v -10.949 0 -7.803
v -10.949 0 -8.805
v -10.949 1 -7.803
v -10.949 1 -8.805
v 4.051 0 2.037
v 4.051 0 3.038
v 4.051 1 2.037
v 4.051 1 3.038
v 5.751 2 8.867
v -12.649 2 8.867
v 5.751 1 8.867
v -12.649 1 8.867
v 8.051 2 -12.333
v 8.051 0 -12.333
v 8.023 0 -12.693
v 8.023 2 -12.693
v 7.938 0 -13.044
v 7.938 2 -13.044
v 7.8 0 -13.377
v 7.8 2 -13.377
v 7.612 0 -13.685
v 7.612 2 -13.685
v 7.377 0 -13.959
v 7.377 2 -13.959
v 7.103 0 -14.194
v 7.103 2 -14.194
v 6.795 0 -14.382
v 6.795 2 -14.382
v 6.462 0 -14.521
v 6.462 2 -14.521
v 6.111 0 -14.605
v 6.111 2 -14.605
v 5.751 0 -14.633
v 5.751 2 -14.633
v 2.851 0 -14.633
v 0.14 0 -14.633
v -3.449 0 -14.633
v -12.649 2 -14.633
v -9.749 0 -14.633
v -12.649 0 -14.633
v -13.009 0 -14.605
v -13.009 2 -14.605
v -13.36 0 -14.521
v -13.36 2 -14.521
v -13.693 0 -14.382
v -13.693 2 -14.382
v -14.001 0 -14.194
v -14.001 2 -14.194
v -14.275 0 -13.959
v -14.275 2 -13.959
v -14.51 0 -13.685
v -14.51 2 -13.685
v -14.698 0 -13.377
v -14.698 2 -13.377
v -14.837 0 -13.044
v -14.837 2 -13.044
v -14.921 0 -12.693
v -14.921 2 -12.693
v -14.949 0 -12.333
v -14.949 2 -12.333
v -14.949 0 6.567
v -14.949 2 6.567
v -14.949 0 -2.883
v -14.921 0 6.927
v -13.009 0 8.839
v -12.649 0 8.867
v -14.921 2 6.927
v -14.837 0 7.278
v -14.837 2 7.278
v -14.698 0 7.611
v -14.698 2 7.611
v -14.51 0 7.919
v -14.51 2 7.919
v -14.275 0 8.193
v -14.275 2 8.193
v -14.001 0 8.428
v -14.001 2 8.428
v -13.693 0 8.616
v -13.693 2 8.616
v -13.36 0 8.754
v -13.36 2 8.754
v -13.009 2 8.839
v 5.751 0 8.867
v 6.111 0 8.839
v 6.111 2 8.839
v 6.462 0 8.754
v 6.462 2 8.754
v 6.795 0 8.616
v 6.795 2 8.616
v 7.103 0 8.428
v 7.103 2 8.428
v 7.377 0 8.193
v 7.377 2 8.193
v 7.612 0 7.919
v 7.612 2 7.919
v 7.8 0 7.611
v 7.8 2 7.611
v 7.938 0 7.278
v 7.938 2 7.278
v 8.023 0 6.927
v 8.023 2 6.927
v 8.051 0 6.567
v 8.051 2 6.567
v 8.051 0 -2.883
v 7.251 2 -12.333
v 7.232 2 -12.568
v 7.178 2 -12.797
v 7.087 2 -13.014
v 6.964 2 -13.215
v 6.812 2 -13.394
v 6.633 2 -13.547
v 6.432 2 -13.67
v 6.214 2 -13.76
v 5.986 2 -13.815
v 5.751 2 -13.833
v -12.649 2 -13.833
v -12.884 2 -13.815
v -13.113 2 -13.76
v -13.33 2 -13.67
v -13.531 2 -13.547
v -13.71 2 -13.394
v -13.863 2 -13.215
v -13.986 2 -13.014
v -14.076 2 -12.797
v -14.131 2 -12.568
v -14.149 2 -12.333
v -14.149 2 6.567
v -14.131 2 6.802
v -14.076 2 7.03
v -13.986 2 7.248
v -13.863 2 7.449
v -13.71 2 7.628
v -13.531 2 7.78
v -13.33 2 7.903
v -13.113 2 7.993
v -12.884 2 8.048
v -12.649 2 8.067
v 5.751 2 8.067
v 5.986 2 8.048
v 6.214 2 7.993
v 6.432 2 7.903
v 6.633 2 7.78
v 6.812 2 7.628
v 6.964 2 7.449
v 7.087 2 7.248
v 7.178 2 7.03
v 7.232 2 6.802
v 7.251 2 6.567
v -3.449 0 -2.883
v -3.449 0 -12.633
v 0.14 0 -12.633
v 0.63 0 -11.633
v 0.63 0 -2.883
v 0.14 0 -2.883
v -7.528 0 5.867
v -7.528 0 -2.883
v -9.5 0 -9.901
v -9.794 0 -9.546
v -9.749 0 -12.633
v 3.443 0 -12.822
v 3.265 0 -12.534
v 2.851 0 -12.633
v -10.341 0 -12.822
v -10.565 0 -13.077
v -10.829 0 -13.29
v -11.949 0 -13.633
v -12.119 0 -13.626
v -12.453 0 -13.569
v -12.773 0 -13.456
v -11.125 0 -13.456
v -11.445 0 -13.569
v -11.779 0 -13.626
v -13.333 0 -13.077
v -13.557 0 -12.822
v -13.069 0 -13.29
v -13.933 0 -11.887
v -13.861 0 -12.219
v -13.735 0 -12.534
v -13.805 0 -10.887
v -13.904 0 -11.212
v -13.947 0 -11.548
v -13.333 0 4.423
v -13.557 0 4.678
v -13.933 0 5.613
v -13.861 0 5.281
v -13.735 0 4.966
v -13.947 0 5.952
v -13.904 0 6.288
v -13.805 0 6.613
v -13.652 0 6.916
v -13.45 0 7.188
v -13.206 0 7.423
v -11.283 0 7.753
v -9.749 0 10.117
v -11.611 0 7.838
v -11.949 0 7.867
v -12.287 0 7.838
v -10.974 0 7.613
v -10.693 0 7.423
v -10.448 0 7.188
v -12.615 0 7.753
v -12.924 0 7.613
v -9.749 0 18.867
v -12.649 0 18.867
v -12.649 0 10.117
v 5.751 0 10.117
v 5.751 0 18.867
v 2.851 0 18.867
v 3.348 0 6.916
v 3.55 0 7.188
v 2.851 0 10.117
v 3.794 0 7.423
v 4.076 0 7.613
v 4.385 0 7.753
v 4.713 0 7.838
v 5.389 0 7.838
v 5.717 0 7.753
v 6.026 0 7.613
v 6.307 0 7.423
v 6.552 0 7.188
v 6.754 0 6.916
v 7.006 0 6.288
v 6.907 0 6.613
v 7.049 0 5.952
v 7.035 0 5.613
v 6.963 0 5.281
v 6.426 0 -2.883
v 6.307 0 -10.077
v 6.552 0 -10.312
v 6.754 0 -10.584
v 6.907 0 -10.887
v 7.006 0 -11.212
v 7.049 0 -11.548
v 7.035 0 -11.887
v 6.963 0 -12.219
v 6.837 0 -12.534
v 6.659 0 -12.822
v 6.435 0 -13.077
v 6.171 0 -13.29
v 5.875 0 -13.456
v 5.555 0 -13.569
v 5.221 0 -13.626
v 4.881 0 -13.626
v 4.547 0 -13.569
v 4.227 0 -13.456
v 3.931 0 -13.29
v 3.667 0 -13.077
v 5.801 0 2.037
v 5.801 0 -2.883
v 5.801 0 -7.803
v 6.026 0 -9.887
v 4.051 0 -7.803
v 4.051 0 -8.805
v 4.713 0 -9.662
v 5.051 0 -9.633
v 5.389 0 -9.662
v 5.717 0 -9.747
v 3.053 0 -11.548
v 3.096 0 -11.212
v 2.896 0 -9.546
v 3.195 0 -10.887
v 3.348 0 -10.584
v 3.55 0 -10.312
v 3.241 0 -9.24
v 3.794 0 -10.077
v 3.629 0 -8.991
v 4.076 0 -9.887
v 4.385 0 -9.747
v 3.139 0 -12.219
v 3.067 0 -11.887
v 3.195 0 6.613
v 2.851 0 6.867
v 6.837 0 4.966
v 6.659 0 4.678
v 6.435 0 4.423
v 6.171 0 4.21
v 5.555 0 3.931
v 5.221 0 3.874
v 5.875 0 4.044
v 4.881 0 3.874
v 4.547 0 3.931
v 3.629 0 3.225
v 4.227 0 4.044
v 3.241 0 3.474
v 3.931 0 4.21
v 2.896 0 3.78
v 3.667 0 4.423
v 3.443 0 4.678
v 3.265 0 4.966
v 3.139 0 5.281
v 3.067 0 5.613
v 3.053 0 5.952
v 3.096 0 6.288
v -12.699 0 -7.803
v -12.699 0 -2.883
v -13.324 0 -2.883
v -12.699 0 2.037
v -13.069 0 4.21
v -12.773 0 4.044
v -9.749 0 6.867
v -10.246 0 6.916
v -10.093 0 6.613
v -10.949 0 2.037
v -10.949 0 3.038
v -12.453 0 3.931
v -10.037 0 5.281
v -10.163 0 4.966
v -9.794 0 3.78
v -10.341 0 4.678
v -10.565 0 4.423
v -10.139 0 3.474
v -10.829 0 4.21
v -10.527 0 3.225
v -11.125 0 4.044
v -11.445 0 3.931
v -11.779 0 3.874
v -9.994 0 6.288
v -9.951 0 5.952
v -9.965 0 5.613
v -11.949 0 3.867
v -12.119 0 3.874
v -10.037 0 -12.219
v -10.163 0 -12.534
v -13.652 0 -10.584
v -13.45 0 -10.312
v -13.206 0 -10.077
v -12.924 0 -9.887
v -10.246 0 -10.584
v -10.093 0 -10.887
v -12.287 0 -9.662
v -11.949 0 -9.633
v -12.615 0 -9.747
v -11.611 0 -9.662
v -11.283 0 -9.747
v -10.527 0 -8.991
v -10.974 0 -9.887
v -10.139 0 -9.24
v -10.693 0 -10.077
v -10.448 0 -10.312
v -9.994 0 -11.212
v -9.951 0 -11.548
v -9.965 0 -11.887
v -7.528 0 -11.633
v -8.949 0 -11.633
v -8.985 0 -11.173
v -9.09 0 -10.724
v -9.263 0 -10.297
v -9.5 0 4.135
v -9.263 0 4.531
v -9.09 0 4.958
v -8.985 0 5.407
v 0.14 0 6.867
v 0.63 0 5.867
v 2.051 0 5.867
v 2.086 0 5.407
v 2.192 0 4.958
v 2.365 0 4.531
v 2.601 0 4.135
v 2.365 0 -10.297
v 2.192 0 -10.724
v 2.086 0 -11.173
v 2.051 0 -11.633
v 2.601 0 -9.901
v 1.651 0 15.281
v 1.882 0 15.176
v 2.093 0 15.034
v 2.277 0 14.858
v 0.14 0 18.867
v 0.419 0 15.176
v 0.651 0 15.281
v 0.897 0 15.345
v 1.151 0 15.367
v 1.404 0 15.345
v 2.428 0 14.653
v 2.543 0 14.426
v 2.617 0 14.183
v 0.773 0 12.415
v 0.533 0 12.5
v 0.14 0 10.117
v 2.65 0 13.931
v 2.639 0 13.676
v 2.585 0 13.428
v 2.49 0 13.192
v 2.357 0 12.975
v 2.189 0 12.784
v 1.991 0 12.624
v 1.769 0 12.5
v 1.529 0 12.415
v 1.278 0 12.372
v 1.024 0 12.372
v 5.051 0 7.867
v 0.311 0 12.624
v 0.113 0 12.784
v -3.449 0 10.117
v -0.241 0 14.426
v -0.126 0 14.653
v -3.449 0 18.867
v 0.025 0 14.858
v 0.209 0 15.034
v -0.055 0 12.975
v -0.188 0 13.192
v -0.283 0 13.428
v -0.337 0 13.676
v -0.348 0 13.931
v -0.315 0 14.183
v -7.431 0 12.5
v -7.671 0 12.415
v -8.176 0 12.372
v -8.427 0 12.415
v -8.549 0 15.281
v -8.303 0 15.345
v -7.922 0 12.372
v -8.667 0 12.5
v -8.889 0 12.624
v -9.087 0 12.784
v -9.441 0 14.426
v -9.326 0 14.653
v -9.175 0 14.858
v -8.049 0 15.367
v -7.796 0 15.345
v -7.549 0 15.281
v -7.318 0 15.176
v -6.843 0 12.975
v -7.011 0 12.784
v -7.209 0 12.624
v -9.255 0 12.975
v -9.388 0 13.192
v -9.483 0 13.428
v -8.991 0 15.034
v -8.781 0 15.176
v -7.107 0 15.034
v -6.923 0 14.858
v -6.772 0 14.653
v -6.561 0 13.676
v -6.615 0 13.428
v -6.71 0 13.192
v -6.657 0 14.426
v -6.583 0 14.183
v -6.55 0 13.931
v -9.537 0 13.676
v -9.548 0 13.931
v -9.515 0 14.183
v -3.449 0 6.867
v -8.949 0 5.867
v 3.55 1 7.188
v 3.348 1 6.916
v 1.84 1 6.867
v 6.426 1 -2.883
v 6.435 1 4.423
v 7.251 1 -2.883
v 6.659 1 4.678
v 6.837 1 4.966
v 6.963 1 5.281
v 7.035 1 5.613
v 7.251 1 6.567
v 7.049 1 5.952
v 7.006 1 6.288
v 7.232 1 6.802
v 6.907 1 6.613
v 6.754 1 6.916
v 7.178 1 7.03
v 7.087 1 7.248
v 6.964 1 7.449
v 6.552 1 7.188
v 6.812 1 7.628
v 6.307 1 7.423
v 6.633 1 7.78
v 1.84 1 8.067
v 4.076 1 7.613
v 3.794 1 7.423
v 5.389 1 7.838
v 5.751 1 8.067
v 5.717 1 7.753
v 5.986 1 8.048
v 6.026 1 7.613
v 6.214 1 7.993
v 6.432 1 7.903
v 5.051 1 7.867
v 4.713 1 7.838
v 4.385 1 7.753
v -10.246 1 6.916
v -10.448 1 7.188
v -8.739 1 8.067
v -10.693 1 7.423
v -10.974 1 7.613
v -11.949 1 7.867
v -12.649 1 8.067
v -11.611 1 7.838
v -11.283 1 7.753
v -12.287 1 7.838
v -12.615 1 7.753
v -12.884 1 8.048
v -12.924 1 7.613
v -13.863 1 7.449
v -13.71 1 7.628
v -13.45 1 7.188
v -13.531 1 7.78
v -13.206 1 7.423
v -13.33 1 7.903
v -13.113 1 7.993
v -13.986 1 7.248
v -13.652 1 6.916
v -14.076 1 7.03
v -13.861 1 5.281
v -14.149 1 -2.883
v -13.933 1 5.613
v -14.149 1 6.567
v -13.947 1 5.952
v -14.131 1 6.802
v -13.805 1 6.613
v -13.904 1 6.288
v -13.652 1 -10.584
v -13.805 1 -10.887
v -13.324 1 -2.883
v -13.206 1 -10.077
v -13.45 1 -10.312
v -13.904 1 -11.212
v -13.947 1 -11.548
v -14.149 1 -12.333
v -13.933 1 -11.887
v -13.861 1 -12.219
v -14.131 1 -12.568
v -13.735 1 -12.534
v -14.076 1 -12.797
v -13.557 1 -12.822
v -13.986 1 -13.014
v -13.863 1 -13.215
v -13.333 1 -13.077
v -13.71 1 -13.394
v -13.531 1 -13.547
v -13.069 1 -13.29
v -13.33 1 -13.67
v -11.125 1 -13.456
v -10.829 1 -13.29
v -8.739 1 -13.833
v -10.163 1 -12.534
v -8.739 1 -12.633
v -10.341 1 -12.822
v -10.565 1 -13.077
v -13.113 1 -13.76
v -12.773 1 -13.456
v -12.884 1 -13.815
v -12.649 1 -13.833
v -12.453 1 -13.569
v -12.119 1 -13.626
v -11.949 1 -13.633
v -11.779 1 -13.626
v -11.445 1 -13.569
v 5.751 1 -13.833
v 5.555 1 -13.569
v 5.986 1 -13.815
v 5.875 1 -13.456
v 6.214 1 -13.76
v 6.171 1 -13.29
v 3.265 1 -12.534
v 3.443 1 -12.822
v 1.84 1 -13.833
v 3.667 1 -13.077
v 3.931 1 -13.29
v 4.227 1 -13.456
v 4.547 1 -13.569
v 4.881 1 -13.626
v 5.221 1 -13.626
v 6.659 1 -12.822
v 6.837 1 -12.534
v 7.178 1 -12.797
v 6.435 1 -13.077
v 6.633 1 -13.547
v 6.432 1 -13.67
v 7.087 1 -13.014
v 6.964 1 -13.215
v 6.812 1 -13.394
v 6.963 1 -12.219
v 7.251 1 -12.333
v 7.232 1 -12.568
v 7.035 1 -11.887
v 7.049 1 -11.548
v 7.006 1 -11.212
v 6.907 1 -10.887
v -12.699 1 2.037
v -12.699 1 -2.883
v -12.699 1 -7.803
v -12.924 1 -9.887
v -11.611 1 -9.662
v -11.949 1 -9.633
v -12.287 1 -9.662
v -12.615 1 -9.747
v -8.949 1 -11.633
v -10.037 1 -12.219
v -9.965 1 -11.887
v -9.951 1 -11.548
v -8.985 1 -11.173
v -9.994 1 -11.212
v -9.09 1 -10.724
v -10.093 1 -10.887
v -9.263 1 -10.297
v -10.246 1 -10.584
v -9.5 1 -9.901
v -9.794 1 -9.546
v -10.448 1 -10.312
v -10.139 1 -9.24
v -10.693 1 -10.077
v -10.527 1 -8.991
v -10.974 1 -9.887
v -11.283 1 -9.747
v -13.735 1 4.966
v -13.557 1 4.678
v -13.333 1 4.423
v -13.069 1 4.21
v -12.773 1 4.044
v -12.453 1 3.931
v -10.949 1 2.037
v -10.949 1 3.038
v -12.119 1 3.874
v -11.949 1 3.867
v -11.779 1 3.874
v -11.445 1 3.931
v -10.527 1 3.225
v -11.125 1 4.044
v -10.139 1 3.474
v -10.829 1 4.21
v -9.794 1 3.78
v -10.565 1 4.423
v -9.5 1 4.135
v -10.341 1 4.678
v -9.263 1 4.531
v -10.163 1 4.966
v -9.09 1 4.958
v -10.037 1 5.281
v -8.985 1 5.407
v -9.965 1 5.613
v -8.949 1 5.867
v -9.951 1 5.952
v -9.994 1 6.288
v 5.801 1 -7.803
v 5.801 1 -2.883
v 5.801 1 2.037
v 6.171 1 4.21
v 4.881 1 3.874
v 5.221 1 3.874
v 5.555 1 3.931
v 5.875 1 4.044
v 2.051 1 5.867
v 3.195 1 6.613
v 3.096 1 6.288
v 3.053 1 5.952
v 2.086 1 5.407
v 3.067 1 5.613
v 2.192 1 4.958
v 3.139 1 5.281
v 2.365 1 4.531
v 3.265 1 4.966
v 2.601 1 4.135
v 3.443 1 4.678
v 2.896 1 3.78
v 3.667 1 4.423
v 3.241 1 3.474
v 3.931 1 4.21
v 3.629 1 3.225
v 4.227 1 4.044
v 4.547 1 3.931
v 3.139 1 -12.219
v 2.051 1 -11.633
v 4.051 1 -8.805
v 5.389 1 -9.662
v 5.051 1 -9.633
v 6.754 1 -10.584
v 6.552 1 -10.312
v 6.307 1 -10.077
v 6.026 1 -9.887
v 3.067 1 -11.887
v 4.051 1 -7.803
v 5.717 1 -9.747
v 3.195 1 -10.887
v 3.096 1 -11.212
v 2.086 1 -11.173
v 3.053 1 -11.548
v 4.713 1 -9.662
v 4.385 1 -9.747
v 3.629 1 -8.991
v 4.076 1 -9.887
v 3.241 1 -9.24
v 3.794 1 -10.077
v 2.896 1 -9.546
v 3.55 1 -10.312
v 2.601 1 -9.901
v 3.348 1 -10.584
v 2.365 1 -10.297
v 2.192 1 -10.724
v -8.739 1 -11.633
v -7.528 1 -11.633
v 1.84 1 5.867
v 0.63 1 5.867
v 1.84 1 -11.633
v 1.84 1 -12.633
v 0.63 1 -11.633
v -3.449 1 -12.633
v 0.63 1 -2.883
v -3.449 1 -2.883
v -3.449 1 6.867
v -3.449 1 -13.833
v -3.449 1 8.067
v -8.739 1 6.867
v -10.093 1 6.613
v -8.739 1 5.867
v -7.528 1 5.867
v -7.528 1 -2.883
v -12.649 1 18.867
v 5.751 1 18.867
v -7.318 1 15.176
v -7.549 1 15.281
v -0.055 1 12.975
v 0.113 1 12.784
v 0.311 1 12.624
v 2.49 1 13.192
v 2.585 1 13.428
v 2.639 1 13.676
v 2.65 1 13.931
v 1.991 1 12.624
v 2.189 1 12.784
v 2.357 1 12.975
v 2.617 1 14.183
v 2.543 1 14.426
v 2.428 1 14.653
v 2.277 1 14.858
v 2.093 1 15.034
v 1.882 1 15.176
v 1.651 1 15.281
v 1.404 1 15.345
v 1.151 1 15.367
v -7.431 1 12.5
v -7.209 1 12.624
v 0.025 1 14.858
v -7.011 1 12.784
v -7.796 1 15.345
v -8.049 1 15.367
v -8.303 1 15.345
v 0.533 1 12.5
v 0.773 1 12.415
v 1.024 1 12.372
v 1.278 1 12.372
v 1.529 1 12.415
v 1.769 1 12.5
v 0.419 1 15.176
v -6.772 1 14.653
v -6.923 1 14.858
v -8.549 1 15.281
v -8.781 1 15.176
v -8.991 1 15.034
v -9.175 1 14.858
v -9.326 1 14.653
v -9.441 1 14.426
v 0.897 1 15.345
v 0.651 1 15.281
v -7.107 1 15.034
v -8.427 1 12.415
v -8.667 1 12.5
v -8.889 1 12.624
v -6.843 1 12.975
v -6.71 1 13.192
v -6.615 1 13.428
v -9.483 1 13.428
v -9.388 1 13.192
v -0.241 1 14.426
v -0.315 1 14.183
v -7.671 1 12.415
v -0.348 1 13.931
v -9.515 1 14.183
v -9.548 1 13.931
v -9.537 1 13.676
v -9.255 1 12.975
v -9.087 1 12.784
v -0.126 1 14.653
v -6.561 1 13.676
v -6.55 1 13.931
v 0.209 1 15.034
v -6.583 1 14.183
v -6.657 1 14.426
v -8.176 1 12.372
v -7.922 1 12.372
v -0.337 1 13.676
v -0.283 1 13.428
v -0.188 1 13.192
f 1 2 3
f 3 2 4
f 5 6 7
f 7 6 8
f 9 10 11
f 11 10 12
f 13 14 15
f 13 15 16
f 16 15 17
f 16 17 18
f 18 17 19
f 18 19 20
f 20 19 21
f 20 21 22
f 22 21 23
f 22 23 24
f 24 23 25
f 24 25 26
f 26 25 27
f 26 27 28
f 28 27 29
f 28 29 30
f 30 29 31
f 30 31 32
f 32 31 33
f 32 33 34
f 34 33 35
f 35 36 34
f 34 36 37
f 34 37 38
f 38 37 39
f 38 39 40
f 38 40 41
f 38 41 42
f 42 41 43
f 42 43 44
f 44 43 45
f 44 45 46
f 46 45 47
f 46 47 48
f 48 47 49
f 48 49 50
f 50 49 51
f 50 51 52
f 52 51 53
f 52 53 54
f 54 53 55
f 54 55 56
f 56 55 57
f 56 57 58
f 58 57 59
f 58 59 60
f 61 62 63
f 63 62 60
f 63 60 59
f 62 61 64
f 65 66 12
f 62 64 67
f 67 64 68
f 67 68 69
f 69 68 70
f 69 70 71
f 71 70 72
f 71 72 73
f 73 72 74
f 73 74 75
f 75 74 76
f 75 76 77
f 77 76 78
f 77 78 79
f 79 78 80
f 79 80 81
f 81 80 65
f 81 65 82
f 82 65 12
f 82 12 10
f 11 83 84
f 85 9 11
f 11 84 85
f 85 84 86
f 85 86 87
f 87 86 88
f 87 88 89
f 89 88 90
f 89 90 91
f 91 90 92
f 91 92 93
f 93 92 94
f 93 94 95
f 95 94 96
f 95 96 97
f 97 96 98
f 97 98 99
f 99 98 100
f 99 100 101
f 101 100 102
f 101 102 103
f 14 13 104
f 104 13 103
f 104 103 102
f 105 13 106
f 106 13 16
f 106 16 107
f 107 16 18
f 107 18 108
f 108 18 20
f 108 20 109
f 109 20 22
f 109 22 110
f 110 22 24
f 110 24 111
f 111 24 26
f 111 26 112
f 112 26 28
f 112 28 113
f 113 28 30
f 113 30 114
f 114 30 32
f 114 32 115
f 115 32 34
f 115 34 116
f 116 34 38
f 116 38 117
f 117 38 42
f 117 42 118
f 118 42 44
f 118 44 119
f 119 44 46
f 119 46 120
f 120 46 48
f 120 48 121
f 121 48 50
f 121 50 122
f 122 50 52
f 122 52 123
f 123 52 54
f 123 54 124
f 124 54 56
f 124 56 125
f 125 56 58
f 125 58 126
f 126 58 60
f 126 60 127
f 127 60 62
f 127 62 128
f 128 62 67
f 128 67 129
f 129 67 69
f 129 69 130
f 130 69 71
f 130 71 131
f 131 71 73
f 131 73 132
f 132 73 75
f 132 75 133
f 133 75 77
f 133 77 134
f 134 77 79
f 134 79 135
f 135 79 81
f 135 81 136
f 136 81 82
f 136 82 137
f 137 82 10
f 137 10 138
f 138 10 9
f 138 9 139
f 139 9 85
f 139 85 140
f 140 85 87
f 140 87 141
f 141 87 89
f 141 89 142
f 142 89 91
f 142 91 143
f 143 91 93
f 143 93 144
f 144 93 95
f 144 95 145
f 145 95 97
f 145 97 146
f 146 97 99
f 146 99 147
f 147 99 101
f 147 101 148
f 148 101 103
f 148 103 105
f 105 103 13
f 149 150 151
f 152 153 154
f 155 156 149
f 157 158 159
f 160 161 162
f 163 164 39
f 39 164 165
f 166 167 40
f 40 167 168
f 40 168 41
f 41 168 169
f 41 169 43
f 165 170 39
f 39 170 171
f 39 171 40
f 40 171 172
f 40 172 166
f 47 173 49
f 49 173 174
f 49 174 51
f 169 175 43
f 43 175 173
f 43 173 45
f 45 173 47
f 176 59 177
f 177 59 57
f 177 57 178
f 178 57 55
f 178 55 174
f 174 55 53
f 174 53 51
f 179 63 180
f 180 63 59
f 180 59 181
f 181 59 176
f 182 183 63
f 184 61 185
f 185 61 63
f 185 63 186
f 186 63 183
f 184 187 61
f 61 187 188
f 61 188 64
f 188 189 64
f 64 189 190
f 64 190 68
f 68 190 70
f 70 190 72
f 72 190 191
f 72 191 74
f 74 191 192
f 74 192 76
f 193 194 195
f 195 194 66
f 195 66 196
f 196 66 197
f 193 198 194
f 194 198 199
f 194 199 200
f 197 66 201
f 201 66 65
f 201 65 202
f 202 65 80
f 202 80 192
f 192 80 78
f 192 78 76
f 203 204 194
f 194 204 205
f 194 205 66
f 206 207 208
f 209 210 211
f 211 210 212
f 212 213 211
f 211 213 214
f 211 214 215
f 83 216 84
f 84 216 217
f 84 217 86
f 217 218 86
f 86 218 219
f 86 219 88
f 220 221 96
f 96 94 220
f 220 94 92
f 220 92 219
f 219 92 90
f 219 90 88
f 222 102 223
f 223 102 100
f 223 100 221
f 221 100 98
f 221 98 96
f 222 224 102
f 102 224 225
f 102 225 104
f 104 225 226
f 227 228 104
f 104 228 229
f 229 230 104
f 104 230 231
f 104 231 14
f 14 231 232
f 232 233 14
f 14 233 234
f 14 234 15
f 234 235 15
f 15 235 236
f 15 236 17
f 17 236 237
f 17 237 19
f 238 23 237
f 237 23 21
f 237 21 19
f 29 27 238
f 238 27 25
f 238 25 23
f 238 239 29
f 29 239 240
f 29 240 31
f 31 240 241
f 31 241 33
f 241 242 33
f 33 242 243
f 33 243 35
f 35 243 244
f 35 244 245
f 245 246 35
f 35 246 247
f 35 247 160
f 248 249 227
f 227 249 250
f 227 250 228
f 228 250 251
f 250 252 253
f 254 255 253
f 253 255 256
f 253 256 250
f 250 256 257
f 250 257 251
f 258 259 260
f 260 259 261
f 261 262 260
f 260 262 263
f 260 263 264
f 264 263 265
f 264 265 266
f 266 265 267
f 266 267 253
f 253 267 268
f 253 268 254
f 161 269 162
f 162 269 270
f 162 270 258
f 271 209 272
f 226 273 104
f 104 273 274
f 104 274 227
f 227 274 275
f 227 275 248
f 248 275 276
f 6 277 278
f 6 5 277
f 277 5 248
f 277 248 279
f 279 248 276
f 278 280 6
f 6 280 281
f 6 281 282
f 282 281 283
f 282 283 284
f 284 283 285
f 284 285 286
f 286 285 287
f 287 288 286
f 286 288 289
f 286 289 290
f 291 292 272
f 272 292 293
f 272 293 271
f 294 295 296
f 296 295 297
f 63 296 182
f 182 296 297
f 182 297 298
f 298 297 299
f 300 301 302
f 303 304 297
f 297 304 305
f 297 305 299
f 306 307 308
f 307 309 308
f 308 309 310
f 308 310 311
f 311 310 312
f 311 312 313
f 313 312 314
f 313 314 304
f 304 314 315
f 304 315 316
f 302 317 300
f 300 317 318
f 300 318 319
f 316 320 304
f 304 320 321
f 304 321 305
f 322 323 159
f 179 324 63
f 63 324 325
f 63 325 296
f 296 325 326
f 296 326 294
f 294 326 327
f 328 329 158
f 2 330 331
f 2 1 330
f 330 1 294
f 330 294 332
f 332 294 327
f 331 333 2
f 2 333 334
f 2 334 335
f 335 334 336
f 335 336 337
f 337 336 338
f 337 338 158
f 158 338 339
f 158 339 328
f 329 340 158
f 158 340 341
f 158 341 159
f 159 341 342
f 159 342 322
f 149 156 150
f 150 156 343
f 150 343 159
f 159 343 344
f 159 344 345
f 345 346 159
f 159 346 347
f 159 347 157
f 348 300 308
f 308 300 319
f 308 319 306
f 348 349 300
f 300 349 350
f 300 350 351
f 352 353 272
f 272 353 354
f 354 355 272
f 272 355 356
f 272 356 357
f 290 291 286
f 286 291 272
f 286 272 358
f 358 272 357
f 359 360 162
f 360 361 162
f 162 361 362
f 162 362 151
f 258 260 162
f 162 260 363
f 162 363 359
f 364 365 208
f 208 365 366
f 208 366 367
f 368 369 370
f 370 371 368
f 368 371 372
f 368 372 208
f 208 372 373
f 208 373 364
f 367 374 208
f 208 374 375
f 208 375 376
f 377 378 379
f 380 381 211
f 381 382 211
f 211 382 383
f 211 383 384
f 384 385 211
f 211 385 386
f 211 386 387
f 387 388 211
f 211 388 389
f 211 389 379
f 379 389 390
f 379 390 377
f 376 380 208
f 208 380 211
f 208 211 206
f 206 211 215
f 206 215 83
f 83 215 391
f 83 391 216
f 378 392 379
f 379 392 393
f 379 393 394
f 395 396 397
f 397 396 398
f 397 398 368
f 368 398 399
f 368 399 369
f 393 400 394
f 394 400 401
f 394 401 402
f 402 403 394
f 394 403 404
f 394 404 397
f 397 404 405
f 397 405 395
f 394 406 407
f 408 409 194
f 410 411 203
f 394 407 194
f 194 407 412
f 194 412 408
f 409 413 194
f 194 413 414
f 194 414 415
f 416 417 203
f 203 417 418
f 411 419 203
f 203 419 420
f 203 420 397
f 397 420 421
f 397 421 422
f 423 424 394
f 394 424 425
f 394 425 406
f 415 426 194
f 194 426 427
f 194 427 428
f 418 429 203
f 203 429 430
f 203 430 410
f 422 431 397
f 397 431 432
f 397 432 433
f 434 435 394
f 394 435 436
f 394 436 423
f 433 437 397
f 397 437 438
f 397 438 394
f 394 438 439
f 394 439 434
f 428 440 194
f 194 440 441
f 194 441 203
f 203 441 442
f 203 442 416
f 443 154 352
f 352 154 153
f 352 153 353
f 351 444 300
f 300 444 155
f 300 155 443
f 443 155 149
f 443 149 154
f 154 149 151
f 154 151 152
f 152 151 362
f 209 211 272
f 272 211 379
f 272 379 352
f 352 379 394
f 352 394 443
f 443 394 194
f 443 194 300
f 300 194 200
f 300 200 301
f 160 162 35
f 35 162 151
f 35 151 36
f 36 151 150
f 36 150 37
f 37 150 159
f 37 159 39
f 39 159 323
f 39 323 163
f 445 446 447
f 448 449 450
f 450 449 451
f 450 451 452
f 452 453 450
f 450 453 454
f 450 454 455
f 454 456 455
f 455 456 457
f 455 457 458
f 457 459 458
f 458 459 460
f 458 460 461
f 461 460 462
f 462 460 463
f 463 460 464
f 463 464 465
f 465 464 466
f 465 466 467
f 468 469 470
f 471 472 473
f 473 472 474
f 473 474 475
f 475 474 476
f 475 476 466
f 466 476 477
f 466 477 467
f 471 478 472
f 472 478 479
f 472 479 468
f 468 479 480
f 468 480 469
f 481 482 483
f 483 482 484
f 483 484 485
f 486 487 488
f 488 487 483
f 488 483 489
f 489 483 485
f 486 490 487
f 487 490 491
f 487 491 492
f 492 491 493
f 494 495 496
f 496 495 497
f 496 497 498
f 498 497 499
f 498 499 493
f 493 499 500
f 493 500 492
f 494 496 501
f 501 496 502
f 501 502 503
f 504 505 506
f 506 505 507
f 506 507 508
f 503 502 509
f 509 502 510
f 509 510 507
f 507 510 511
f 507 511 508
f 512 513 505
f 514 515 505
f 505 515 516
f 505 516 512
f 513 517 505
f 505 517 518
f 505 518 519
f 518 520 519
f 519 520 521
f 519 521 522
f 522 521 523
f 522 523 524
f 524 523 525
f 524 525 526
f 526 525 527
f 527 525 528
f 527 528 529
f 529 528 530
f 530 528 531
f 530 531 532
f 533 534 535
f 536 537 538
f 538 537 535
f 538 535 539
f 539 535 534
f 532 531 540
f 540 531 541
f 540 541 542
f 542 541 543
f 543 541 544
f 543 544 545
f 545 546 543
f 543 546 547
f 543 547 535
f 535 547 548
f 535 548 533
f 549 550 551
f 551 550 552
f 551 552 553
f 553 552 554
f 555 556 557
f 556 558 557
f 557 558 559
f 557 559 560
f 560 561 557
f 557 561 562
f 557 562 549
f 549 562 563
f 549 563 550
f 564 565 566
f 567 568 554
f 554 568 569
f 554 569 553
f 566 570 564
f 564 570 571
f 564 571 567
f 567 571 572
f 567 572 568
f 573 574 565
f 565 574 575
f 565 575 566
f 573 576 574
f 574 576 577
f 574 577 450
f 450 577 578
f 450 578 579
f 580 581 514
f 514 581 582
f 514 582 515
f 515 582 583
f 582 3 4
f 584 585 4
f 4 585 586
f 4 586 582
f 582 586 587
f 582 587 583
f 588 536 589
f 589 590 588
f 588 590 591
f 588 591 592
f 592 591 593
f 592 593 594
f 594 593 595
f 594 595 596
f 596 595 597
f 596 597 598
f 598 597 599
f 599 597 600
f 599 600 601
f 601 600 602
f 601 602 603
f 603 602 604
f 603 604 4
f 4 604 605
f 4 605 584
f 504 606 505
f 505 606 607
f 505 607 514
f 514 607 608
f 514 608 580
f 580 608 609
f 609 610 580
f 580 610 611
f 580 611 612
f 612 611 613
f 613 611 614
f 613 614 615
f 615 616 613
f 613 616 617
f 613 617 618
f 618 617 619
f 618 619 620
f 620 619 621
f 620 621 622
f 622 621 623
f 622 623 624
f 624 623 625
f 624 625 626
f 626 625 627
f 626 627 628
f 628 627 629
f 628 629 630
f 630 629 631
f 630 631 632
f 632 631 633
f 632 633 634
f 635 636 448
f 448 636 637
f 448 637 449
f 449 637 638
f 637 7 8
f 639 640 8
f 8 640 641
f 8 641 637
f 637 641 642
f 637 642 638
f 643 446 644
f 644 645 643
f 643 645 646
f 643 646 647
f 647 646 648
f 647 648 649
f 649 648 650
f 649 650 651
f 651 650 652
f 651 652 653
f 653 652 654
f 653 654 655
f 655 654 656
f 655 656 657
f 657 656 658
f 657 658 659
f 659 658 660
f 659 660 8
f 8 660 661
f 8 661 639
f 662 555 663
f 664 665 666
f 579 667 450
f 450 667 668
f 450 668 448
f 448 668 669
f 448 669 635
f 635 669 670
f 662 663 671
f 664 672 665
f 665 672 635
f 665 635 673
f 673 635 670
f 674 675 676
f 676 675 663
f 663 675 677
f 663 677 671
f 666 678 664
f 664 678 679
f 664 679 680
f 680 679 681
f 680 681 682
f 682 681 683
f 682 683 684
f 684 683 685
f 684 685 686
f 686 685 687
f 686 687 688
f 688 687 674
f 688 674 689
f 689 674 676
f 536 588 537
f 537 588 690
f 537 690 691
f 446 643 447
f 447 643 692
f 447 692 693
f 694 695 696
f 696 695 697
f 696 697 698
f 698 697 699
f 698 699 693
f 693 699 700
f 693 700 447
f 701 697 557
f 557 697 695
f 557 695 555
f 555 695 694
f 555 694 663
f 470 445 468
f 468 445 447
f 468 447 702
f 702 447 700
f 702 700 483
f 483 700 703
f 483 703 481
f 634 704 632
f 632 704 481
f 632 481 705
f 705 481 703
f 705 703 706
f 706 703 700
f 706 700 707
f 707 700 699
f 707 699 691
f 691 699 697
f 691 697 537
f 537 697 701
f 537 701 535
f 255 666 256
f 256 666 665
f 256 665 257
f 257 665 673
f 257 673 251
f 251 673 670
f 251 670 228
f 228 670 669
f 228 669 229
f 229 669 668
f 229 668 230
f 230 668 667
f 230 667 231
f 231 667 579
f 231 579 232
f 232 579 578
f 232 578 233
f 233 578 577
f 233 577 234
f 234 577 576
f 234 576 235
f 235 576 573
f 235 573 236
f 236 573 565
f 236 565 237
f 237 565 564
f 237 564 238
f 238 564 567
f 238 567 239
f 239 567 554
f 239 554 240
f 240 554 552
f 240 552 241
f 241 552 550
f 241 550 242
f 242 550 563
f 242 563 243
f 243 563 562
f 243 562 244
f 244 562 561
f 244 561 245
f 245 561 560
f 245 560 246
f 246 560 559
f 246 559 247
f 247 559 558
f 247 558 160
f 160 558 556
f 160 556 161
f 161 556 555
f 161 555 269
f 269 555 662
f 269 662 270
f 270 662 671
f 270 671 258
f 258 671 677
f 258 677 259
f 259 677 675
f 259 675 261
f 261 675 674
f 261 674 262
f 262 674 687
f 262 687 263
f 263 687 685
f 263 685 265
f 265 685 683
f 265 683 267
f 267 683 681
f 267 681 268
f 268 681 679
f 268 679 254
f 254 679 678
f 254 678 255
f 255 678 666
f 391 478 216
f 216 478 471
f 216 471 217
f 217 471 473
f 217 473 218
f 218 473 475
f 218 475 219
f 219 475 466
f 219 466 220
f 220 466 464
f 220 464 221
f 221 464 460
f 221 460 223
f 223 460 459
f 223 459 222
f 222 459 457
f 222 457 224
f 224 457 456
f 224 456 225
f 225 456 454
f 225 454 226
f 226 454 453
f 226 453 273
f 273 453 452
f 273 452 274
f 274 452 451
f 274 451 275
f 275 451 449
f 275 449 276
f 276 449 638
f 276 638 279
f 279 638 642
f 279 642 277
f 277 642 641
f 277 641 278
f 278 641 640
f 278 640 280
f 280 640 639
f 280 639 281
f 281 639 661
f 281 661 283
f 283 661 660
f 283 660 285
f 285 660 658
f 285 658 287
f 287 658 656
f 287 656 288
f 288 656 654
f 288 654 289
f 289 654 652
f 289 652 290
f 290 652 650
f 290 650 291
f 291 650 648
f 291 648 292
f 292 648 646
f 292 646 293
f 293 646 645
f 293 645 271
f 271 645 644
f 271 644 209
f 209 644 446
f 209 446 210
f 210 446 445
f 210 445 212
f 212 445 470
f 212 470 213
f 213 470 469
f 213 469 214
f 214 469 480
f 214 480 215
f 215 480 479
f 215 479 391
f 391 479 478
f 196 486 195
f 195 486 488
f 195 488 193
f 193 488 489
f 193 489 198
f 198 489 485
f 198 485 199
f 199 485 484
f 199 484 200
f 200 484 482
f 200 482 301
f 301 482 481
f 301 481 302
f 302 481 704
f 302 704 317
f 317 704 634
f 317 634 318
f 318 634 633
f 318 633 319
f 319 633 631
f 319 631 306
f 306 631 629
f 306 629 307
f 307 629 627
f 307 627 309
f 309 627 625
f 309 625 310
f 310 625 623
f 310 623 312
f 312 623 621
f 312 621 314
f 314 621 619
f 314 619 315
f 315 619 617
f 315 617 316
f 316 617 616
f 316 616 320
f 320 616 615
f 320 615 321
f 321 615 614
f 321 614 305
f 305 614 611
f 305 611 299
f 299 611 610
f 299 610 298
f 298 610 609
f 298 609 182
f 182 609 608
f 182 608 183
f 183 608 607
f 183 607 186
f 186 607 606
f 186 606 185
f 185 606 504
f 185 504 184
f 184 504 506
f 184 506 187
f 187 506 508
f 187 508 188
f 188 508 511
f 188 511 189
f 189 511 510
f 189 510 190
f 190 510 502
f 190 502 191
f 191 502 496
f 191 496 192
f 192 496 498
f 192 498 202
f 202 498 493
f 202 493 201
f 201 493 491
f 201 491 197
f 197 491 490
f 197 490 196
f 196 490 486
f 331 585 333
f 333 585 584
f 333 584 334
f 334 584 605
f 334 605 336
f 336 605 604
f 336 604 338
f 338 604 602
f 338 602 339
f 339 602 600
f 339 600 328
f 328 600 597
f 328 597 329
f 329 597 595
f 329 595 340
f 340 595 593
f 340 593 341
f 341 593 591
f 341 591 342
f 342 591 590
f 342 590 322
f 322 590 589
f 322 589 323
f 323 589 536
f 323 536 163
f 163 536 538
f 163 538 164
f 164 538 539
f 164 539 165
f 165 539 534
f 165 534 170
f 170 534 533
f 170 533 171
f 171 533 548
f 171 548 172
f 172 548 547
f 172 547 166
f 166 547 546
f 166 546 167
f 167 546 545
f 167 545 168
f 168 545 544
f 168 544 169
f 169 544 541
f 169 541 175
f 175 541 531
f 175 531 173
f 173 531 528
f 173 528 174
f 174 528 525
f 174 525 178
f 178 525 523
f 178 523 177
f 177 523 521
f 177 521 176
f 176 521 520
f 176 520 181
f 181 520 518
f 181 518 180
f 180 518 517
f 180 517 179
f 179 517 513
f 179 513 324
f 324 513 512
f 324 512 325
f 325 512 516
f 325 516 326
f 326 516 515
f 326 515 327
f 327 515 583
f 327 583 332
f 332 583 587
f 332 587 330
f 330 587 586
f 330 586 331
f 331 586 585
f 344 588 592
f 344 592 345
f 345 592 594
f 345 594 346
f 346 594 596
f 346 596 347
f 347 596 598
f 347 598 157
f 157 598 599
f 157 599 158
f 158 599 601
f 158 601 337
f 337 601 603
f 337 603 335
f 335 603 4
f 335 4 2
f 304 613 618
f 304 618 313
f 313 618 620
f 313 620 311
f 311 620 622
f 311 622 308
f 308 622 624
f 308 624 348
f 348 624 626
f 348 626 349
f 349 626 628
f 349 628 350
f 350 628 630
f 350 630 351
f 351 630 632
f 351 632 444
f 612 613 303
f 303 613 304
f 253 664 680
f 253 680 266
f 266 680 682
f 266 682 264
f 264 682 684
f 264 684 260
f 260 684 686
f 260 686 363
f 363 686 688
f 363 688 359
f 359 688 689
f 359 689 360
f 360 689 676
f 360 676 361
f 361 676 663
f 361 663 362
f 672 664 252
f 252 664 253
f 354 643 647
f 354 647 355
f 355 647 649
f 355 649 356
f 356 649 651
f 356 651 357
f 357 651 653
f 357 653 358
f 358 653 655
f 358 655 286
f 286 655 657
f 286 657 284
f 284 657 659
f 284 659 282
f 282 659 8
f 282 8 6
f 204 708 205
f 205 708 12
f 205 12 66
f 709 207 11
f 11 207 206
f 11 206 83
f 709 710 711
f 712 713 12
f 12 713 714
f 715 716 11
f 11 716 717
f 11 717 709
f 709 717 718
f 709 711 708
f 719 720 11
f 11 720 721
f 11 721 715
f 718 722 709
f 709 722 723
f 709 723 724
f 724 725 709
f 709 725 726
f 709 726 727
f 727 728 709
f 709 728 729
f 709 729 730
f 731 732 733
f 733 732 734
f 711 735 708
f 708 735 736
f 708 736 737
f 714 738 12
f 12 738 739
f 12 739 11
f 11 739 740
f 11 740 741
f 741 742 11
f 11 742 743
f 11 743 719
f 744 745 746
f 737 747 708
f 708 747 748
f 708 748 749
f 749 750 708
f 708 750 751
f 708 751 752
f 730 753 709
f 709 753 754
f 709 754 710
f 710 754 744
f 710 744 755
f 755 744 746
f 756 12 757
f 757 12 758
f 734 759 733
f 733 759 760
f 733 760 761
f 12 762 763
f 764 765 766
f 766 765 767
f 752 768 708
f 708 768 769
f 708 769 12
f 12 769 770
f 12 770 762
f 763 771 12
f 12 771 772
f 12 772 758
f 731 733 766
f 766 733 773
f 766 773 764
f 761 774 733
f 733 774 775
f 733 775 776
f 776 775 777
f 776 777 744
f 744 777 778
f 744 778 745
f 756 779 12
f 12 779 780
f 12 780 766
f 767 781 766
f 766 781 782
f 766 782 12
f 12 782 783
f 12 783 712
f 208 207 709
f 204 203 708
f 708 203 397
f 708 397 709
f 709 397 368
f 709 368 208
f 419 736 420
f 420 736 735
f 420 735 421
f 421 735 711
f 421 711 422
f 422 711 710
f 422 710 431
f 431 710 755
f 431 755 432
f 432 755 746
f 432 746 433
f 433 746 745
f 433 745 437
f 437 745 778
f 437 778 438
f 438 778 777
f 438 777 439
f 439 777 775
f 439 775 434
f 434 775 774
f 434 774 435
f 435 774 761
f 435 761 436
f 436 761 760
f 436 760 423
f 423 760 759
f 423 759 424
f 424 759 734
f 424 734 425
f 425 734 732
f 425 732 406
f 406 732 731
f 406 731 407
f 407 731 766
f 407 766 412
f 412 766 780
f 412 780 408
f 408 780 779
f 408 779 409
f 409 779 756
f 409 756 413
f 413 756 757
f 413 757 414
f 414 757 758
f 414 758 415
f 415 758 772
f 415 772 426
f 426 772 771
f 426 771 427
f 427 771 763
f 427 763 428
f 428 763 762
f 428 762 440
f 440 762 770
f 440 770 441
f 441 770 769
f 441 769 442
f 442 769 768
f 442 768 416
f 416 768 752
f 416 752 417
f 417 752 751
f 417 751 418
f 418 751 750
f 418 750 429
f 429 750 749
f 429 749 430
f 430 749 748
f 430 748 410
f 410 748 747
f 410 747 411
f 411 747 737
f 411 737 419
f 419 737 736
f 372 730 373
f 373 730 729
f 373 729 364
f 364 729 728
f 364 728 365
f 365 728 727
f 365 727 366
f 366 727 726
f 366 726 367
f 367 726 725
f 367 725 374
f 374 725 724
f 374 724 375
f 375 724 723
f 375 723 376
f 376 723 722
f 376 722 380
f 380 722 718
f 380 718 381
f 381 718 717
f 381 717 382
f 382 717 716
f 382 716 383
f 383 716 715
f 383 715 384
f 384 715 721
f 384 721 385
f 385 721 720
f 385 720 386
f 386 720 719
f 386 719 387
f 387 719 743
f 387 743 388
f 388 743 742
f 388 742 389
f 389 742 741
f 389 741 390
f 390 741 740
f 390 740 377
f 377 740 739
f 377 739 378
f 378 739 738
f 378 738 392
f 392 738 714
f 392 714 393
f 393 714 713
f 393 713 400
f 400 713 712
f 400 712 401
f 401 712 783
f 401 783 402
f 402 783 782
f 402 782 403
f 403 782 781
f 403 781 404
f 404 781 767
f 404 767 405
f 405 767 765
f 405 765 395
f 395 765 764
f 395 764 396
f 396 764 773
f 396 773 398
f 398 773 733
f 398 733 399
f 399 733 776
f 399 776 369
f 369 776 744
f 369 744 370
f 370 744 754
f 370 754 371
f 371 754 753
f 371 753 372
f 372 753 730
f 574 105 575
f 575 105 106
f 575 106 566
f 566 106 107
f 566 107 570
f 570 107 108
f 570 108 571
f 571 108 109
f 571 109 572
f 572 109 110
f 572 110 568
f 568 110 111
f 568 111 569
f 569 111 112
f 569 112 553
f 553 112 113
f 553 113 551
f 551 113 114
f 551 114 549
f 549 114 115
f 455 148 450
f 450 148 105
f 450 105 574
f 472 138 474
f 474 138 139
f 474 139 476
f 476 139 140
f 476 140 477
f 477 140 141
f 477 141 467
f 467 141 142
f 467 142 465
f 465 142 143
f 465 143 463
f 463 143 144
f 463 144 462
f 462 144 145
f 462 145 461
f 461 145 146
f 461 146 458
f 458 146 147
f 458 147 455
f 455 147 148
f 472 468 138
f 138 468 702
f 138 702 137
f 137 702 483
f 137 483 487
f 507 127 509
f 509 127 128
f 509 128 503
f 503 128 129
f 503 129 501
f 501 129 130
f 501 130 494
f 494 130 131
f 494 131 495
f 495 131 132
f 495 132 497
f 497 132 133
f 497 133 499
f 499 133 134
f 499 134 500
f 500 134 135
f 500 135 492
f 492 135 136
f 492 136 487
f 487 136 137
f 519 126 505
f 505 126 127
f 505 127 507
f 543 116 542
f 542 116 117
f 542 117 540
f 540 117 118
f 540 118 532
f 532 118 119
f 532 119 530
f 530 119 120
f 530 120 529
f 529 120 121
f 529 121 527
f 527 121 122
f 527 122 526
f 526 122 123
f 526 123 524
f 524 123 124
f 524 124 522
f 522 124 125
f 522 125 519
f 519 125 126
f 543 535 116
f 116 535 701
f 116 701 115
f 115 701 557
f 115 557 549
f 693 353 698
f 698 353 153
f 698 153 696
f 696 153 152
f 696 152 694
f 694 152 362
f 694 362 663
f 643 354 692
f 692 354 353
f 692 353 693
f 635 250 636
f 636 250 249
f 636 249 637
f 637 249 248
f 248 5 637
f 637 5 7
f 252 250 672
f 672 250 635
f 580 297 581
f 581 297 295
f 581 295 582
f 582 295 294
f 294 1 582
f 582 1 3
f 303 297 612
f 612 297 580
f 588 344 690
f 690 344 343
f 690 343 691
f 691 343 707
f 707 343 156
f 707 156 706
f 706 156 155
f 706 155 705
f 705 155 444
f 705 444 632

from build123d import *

# Parameters (mm, degrees)
BOSS_EXTRUDE1_DEPTH = 2
CUT_EXTRUDE2_DEPTH  = 1
SKETCH5_R           = 2
CUT_EXTRUDE3_DEPTH  = 21.942838525
CUT_EXTRUDE4_DEPTH  = 21.942838525
SKETCH7_W           = 18.4
SKETCH7_H           = 1
BOSS_EXTRUDE2_DEPTH = 10
SKETCH8_R           = 1.5
CUT_EXTRUDE5_DEPTH  = 25.092211634
CUT_EXTRUDE6_DEPTH  = 1
SKETCH11_W          = 1.421057218
SKETCH11_H          = 17.5
SKETCH11_W_2        = 1.75
SKETCH11_H_2        = 9.84
CUT_EXTRUDE7_DEPTH  = 25.092211634


with BuildPart() as part:
    # Sketch1 → Boss-Extrude1 (new body)
    with BuildSketch(Plane(origin=(0, 0, 0), x_dir=(1, 0, 0), z_dir=(0, 1, 0))):
        with BuildLine():
            Line((-12.649074074, 14.633101852), (5.750925926, 14.633101852))
            ThreePointArc((5.750925926, 14.633101852), (7.377271523, 13.959447449), (8.050925926, 12.333101852))
            Line((8.050925926, 12.333101852), (8.050925926, -6.566898148))
            ThreePointArc((8.050925926, -6.566898148), (7.377271523, -8.193243745), (5.750925926, -8.866898148))
            Line((5.750925926, -8.866898148), (-12.649074074, -8.866898148))
            ThreePointArc((-12.649074074, -8.866898148), (-14.275419671, -8.193243745), (-14.949074074, -6.566898148))
            Line((-14.949074074, -6.566898148), (-14.949074074, 12.333101852))
            ThreePointArc((-14.949074074, 12.333101852), (-14.275419671, 13.959447449), (-12.649074074, 14.633101852))
        make_face()
    extrude(amount=BOSS_EXTRUDE1_DEPTH)

    # Sketch2 → Cut-Extrude2 (cut)
    with BuildSketch(Plane(origin=(0, 2, 0), x_dir=(1, 0, 0), z_dir=(0, 1, 0))):
        with BuildLine():
            Line((5.750925926, 13.633101852), (-12.649074074, 13.633101852))
            ThreePointArc((-12.649074074, 13.633101852), (-13.56831289, 13.252340667), (-13.949074074, 12.333101852))
            Line((-13.949074074, 12.333101852), (-13.949074074, -6.566898148))
            ThreePointArc((-13.949074074, -6.566898148), (-13.56831289, -7.486136964), (-12.649074074, -7.866898148))
            Line((-12.649074074, -7.866898148), (5.750925926, -7.866898148))
            ThreePointArc((5.750925926, -7.866898148), (6.670164741, -7.486136964), (7.050925926, -6.566898148))
            Line((7.050925926, -6.566898148), (7.050925926, 12.333101852))
            ThreePointArc((7.050925926, 12.333101852), (6.670164741, 13.252340667), (5.750925926, 13.633101852))
        make_face()
    extrude(amount=-CUT_EXTRUDE2_DEPTH, mode=Mode.SUBTRACT)

    # Sketch5 → Cut-Extrude3 (cut, through all)
    with BuildSketch(Plane(origin=(0, 1, 0), x_dir=(1, 0, 0), z_dir=(0, 1, 0))):
        with Locations(Location((5.050925926, 11.633101852, 0), (0, 0, 270))):
            Circle(SKETCH5_R)
        with Locations(Location((5.050925926, -5.866898148, 0), (0, 0, 270))):
            Circle(SKETCH5_R)
        with Locations(Location((-11.949074074, -5.866898148, 0), (0, 0, 270))):
            Circle(SKETCH5_R)
        with Locations(Location((-11.949074074, 11.633101852, 0), (0, 0, 90))):
            Circle(SKETCH5_R)
    extrude(amount=-CUT_EXTRUDE3_DEPTH, mode=Mode.SUBTRACT)

    # Sketch6 → Cut-Extrude4 (cut, through all)
    with BuildSketch(Plane(origin=(0, 1, 0), x_dir=(1, 0, 0), z_dir=(0, 1, 0))):
        with BuildLine():
            Line((4.050925926, -3.038471023), (4.050925926, 8.804674727))
            ThreePointArc((4.050925926, 8.804674727), (2.601436183, 9.901051044), (2.050925926, 11.633101852))
            Line((2.050925926, 11.633101852), (2.050925926, -5.866898148))
            ThreePointArc((2.050925926, -5.866898148), (2.601436183, -4.134847341), (4.050925926, -3.038471023))
        make_face()
        with BuildLine():
            Line((-10.949074074, 8.804674727), (-10.949074074, -3.038471023))
            ThreePointArc((-10.949074074, -3.038471023), (-9.499584331, -4.134847341), (-8.949074074, -5.866898148))
            Line((-8.949074074, -5.866898148), (-8.949074074, 11.633101852))
            ThreePointArc((-8.949074074, 11.633101852), (-9.499584331, 9.901051044), (-10.949074074, 8.804674727))
        make_face()
    extrude(amount=-CUT_EXTRUDE4_DEPTH, mode=Mode.SUBTRACT)

    # Sketch7 → Boss-Extrude2 (add)
    with BuildSketch(Plane.XY.offset(8.866898148)):
        with Locations((-3.449074074, 0.5)):
            Rectangle(SKETCH7_W, SKETCH7_H)
    extrude(amount=BOSS_EXTRUDE2_DEPTH)

    # Sketch8 → Cut-Extrude5 (cut, through all)
    with BuildSketch(Plane(origin=(0, 1, 0), x_dir=(1, 0, 0), z_dir=(0, 1, 0))):
        with Locations(Location((1.150925926, -13.866898148, 0), (0, 0, 270))):
            Circle(SKETCH8_R)
        with Locations(Location((-8.049074074, -13.866898148, 0), (0, 0, 270))):
            Circle(SKETCH8_R)
    extrude(amount=-CUT_EXTRUDE5_DEPTH, mode=Mode.SUBTRACT)

    # Sketch9 → Cut-Extrude6 (cut)
    with BuildSketch(Plane(origin=(0, 2, 0), x_dir=(1, 0, 0), z_dir=(0, 1, 0))):
        with BuildLine():
            Line((5.750925926, 13.833101852), (-12.649074074, 13.833101852))
            ThreePointArc((-12.649074074, 13.833101852), (-13.709734246, 13.393762024), (-14.149074074, 12.333101852))
            Line((-14.149074074, 12.333101852), (-14.149074074, -6.566898148))
            ThreePointArc((-14.149074074, -6.566898148), (-13.709734246, -7.62755832), (-12.649074074, -8.066898148))
            Line((-12.649074074, -8.066898148), (5.750925926, -8.066898148))
            ThreePointArc((5.750925926, -8.066898148), (6.811586098, -7.62755832), (7.250925926, -6.566898148))
            Line((7.250925926, -6.566898148), (7.250925926, 12.333101852))
            ThreePointArc((7.250925926, 12.333101852), (6.811586098, 13.393762024), (5.750925926, 13.833101852))
        make_face()
    extrude(amount=-CUT_EXTRUDE6_DEPTH, mode=Mode.SUBTRACT)

    # Sketch11 → Cut-Extrude7 (cut, through all)
    with BuildSketch(Plane(origin=(0, 1, 0), x_dir=(1, 0, 0), z_dir=(0, 1, 0))):
        with Locations((-8.238545465, 2.883101852)):
            Rectangle(SKETCH11_W, SKETCH11_H)
        with Locations((1.340397317, 2.883101852)):
            Rectangle(SKETCH11_W, SKETCH11_H)
        with Locations((-11.824074074, 2.883101852)):
            Rectangle(SKETCH11_W_2, SKETCH11_H_2)
        with Locations((4.925925926, 2.883101852)):
            Rectangle(SKETCH11_W_2, SKETCH11_H_2)
    extrude(amount=-CUT_EXTRUDE7_DEPTH, mode=Mode.SUBTRACT)


solid = part.part
